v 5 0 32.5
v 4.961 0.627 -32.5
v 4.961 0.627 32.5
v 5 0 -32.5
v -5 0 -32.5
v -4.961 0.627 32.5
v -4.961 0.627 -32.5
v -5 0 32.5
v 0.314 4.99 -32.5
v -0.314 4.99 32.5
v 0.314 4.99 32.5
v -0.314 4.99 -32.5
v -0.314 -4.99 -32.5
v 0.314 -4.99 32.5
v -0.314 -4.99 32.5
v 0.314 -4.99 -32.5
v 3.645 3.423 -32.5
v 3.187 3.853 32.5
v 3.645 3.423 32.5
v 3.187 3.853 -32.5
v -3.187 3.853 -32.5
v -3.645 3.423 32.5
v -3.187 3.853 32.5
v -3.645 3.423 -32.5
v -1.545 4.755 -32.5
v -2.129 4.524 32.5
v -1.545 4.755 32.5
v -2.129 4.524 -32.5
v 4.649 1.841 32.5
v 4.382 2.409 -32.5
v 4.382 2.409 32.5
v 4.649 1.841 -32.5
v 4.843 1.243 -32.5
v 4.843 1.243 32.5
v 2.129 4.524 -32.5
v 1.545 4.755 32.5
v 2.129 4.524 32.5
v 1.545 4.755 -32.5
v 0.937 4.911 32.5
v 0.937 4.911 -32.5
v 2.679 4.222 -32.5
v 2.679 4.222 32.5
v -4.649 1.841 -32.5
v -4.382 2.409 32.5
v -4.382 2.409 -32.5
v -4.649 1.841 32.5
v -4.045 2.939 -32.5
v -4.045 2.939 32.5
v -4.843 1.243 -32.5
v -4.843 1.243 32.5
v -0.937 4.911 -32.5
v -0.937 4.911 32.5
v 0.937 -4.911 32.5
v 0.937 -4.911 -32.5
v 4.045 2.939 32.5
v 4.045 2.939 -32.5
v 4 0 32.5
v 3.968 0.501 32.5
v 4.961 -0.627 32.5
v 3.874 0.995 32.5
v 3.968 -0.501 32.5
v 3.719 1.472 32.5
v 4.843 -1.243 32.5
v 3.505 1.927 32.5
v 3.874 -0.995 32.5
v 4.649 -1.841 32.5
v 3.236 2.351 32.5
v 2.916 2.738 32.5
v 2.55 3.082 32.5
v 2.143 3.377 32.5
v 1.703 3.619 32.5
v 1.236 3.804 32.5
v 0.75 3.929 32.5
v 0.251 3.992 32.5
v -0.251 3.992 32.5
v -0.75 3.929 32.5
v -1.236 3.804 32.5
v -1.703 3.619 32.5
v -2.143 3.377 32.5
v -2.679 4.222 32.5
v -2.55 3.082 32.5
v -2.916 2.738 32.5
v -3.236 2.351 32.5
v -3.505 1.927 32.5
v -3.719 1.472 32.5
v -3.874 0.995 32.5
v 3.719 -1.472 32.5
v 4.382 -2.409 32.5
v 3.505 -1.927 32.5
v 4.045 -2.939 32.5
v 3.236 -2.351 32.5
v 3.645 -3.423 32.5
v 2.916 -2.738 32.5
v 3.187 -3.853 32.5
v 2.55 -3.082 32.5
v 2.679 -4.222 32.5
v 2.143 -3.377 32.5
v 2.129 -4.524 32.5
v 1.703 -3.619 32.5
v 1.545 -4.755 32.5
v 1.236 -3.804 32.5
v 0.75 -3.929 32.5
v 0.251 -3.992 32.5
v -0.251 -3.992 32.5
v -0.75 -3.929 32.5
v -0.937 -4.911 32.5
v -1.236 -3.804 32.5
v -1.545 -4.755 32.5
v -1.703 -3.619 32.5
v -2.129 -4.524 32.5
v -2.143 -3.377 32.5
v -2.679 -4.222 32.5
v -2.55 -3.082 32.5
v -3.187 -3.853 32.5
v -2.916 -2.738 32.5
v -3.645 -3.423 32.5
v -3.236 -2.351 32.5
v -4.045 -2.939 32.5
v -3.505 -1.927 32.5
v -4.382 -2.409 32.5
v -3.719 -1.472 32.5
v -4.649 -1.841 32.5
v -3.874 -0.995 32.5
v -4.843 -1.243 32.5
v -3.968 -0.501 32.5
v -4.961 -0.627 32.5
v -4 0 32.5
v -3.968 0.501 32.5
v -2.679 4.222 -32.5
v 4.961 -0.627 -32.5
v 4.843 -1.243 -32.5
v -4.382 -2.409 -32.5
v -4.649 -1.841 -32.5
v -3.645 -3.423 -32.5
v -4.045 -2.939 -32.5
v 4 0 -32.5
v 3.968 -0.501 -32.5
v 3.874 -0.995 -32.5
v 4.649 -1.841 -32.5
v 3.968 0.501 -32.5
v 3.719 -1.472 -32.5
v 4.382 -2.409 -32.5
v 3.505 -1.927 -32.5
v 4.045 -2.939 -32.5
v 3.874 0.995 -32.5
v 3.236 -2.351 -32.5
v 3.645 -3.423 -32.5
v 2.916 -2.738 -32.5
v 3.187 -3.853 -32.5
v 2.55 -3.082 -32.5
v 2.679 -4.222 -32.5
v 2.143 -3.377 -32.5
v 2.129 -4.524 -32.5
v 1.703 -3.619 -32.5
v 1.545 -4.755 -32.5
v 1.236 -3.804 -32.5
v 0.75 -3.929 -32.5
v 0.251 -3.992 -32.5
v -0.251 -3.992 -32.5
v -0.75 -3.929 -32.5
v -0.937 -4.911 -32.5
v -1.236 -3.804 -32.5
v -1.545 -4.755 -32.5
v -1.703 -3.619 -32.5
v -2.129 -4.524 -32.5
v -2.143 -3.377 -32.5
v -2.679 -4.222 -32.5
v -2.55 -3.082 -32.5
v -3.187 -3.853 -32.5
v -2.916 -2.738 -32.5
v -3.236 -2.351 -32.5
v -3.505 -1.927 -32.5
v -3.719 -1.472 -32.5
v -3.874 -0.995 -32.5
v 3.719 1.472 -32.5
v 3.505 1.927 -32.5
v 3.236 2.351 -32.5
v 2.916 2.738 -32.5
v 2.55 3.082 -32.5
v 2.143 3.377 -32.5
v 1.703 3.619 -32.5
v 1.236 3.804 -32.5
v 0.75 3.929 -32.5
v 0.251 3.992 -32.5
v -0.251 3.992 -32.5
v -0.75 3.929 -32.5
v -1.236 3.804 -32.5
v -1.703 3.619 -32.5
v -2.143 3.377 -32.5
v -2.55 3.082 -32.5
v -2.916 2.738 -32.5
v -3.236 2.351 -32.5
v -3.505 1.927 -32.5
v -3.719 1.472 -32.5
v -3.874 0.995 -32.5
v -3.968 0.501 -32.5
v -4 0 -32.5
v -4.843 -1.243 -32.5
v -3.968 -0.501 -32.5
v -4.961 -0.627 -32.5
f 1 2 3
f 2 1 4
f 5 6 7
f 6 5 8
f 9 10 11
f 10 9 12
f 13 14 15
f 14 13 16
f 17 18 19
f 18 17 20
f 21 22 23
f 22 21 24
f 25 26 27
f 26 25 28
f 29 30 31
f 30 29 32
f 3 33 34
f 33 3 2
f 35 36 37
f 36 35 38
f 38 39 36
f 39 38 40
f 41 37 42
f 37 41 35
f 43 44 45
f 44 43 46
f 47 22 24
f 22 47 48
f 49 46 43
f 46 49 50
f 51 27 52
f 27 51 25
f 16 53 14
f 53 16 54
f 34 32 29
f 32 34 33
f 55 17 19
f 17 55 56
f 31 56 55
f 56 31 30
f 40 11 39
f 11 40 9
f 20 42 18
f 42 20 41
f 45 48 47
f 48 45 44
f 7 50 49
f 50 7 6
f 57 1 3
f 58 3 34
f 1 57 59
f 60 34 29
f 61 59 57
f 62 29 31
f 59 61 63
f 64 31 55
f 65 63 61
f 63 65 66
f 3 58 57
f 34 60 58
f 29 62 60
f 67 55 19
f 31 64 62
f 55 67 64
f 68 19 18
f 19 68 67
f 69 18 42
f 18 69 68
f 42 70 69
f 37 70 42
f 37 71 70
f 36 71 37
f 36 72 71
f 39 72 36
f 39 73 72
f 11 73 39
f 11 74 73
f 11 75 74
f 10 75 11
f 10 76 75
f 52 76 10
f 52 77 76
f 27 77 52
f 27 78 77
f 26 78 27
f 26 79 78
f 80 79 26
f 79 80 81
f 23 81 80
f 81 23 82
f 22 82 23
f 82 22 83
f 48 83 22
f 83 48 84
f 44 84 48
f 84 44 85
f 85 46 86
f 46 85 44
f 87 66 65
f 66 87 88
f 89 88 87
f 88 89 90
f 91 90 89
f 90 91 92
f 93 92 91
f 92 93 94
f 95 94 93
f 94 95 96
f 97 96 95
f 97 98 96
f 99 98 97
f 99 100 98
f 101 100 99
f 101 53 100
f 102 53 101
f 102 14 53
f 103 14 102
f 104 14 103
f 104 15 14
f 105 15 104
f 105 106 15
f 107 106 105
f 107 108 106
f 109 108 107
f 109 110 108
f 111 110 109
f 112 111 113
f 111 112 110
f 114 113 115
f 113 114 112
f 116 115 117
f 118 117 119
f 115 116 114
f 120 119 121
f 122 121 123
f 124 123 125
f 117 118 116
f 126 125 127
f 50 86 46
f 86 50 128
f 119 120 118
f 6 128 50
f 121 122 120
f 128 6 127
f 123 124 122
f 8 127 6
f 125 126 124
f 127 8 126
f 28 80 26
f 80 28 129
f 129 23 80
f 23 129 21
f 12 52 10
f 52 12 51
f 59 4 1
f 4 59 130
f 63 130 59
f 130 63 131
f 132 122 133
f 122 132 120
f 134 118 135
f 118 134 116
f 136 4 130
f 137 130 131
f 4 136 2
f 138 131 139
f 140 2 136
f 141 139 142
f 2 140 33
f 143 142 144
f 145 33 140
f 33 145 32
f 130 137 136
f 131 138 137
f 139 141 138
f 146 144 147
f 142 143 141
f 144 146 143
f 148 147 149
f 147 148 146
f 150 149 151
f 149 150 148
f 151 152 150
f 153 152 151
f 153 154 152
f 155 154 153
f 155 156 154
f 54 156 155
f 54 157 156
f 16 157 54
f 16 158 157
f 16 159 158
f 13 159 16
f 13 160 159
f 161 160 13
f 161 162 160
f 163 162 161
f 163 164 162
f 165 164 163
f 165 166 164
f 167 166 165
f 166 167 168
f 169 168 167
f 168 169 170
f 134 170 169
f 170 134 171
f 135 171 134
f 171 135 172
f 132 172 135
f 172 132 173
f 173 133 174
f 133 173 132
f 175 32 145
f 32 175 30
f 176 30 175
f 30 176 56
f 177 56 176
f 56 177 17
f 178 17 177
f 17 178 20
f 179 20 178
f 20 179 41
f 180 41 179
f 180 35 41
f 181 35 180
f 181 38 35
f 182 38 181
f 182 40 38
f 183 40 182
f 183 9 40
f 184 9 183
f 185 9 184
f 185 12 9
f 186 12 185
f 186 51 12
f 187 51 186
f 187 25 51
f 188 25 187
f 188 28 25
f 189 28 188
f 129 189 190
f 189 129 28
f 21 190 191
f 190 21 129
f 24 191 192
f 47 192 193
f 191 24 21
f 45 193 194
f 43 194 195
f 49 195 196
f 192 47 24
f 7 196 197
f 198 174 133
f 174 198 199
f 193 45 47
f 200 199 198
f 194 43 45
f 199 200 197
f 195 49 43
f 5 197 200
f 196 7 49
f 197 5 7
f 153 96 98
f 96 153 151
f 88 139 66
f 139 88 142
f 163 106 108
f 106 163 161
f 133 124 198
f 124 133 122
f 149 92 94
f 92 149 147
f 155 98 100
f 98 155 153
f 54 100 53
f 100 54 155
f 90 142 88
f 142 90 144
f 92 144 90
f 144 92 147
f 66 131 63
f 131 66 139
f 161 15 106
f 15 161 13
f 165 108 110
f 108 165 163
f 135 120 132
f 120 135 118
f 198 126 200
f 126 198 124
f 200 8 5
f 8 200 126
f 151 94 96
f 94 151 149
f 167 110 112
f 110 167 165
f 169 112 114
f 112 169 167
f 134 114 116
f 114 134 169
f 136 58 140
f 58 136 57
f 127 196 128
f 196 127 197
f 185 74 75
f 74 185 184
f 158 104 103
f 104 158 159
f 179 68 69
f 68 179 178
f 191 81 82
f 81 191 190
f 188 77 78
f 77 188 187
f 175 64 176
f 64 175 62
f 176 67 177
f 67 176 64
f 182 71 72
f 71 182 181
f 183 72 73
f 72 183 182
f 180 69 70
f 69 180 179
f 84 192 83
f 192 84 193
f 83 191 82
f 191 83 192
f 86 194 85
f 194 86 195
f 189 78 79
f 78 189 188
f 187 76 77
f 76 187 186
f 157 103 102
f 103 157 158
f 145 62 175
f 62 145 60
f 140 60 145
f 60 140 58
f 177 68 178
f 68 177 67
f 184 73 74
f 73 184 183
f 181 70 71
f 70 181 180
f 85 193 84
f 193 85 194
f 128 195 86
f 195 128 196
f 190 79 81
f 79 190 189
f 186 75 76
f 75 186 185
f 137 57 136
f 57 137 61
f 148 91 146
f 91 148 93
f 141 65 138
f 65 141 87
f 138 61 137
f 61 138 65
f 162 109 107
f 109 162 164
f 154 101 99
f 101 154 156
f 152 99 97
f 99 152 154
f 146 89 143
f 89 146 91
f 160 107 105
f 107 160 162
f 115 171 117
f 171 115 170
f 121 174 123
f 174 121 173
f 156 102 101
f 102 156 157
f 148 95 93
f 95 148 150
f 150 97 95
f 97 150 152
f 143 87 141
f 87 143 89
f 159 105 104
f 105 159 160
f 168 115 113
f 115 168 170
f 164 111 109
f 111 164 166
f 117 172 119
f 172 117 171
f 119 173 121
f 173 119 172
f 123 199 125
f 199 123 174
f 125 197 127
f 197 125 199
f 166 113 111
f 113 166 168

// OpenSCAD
$fn = 50;


difference() {
	union() {
		translate(v = [0, 0, -32.5000000000]) {
			cylinder(h = 65, r = 5.0000000000);
		}
	}
	union() {
		translate(v = [0, 0, -100.0000000000]) {
			cylinder(h = 200, r = 4);
		}
	}
}
